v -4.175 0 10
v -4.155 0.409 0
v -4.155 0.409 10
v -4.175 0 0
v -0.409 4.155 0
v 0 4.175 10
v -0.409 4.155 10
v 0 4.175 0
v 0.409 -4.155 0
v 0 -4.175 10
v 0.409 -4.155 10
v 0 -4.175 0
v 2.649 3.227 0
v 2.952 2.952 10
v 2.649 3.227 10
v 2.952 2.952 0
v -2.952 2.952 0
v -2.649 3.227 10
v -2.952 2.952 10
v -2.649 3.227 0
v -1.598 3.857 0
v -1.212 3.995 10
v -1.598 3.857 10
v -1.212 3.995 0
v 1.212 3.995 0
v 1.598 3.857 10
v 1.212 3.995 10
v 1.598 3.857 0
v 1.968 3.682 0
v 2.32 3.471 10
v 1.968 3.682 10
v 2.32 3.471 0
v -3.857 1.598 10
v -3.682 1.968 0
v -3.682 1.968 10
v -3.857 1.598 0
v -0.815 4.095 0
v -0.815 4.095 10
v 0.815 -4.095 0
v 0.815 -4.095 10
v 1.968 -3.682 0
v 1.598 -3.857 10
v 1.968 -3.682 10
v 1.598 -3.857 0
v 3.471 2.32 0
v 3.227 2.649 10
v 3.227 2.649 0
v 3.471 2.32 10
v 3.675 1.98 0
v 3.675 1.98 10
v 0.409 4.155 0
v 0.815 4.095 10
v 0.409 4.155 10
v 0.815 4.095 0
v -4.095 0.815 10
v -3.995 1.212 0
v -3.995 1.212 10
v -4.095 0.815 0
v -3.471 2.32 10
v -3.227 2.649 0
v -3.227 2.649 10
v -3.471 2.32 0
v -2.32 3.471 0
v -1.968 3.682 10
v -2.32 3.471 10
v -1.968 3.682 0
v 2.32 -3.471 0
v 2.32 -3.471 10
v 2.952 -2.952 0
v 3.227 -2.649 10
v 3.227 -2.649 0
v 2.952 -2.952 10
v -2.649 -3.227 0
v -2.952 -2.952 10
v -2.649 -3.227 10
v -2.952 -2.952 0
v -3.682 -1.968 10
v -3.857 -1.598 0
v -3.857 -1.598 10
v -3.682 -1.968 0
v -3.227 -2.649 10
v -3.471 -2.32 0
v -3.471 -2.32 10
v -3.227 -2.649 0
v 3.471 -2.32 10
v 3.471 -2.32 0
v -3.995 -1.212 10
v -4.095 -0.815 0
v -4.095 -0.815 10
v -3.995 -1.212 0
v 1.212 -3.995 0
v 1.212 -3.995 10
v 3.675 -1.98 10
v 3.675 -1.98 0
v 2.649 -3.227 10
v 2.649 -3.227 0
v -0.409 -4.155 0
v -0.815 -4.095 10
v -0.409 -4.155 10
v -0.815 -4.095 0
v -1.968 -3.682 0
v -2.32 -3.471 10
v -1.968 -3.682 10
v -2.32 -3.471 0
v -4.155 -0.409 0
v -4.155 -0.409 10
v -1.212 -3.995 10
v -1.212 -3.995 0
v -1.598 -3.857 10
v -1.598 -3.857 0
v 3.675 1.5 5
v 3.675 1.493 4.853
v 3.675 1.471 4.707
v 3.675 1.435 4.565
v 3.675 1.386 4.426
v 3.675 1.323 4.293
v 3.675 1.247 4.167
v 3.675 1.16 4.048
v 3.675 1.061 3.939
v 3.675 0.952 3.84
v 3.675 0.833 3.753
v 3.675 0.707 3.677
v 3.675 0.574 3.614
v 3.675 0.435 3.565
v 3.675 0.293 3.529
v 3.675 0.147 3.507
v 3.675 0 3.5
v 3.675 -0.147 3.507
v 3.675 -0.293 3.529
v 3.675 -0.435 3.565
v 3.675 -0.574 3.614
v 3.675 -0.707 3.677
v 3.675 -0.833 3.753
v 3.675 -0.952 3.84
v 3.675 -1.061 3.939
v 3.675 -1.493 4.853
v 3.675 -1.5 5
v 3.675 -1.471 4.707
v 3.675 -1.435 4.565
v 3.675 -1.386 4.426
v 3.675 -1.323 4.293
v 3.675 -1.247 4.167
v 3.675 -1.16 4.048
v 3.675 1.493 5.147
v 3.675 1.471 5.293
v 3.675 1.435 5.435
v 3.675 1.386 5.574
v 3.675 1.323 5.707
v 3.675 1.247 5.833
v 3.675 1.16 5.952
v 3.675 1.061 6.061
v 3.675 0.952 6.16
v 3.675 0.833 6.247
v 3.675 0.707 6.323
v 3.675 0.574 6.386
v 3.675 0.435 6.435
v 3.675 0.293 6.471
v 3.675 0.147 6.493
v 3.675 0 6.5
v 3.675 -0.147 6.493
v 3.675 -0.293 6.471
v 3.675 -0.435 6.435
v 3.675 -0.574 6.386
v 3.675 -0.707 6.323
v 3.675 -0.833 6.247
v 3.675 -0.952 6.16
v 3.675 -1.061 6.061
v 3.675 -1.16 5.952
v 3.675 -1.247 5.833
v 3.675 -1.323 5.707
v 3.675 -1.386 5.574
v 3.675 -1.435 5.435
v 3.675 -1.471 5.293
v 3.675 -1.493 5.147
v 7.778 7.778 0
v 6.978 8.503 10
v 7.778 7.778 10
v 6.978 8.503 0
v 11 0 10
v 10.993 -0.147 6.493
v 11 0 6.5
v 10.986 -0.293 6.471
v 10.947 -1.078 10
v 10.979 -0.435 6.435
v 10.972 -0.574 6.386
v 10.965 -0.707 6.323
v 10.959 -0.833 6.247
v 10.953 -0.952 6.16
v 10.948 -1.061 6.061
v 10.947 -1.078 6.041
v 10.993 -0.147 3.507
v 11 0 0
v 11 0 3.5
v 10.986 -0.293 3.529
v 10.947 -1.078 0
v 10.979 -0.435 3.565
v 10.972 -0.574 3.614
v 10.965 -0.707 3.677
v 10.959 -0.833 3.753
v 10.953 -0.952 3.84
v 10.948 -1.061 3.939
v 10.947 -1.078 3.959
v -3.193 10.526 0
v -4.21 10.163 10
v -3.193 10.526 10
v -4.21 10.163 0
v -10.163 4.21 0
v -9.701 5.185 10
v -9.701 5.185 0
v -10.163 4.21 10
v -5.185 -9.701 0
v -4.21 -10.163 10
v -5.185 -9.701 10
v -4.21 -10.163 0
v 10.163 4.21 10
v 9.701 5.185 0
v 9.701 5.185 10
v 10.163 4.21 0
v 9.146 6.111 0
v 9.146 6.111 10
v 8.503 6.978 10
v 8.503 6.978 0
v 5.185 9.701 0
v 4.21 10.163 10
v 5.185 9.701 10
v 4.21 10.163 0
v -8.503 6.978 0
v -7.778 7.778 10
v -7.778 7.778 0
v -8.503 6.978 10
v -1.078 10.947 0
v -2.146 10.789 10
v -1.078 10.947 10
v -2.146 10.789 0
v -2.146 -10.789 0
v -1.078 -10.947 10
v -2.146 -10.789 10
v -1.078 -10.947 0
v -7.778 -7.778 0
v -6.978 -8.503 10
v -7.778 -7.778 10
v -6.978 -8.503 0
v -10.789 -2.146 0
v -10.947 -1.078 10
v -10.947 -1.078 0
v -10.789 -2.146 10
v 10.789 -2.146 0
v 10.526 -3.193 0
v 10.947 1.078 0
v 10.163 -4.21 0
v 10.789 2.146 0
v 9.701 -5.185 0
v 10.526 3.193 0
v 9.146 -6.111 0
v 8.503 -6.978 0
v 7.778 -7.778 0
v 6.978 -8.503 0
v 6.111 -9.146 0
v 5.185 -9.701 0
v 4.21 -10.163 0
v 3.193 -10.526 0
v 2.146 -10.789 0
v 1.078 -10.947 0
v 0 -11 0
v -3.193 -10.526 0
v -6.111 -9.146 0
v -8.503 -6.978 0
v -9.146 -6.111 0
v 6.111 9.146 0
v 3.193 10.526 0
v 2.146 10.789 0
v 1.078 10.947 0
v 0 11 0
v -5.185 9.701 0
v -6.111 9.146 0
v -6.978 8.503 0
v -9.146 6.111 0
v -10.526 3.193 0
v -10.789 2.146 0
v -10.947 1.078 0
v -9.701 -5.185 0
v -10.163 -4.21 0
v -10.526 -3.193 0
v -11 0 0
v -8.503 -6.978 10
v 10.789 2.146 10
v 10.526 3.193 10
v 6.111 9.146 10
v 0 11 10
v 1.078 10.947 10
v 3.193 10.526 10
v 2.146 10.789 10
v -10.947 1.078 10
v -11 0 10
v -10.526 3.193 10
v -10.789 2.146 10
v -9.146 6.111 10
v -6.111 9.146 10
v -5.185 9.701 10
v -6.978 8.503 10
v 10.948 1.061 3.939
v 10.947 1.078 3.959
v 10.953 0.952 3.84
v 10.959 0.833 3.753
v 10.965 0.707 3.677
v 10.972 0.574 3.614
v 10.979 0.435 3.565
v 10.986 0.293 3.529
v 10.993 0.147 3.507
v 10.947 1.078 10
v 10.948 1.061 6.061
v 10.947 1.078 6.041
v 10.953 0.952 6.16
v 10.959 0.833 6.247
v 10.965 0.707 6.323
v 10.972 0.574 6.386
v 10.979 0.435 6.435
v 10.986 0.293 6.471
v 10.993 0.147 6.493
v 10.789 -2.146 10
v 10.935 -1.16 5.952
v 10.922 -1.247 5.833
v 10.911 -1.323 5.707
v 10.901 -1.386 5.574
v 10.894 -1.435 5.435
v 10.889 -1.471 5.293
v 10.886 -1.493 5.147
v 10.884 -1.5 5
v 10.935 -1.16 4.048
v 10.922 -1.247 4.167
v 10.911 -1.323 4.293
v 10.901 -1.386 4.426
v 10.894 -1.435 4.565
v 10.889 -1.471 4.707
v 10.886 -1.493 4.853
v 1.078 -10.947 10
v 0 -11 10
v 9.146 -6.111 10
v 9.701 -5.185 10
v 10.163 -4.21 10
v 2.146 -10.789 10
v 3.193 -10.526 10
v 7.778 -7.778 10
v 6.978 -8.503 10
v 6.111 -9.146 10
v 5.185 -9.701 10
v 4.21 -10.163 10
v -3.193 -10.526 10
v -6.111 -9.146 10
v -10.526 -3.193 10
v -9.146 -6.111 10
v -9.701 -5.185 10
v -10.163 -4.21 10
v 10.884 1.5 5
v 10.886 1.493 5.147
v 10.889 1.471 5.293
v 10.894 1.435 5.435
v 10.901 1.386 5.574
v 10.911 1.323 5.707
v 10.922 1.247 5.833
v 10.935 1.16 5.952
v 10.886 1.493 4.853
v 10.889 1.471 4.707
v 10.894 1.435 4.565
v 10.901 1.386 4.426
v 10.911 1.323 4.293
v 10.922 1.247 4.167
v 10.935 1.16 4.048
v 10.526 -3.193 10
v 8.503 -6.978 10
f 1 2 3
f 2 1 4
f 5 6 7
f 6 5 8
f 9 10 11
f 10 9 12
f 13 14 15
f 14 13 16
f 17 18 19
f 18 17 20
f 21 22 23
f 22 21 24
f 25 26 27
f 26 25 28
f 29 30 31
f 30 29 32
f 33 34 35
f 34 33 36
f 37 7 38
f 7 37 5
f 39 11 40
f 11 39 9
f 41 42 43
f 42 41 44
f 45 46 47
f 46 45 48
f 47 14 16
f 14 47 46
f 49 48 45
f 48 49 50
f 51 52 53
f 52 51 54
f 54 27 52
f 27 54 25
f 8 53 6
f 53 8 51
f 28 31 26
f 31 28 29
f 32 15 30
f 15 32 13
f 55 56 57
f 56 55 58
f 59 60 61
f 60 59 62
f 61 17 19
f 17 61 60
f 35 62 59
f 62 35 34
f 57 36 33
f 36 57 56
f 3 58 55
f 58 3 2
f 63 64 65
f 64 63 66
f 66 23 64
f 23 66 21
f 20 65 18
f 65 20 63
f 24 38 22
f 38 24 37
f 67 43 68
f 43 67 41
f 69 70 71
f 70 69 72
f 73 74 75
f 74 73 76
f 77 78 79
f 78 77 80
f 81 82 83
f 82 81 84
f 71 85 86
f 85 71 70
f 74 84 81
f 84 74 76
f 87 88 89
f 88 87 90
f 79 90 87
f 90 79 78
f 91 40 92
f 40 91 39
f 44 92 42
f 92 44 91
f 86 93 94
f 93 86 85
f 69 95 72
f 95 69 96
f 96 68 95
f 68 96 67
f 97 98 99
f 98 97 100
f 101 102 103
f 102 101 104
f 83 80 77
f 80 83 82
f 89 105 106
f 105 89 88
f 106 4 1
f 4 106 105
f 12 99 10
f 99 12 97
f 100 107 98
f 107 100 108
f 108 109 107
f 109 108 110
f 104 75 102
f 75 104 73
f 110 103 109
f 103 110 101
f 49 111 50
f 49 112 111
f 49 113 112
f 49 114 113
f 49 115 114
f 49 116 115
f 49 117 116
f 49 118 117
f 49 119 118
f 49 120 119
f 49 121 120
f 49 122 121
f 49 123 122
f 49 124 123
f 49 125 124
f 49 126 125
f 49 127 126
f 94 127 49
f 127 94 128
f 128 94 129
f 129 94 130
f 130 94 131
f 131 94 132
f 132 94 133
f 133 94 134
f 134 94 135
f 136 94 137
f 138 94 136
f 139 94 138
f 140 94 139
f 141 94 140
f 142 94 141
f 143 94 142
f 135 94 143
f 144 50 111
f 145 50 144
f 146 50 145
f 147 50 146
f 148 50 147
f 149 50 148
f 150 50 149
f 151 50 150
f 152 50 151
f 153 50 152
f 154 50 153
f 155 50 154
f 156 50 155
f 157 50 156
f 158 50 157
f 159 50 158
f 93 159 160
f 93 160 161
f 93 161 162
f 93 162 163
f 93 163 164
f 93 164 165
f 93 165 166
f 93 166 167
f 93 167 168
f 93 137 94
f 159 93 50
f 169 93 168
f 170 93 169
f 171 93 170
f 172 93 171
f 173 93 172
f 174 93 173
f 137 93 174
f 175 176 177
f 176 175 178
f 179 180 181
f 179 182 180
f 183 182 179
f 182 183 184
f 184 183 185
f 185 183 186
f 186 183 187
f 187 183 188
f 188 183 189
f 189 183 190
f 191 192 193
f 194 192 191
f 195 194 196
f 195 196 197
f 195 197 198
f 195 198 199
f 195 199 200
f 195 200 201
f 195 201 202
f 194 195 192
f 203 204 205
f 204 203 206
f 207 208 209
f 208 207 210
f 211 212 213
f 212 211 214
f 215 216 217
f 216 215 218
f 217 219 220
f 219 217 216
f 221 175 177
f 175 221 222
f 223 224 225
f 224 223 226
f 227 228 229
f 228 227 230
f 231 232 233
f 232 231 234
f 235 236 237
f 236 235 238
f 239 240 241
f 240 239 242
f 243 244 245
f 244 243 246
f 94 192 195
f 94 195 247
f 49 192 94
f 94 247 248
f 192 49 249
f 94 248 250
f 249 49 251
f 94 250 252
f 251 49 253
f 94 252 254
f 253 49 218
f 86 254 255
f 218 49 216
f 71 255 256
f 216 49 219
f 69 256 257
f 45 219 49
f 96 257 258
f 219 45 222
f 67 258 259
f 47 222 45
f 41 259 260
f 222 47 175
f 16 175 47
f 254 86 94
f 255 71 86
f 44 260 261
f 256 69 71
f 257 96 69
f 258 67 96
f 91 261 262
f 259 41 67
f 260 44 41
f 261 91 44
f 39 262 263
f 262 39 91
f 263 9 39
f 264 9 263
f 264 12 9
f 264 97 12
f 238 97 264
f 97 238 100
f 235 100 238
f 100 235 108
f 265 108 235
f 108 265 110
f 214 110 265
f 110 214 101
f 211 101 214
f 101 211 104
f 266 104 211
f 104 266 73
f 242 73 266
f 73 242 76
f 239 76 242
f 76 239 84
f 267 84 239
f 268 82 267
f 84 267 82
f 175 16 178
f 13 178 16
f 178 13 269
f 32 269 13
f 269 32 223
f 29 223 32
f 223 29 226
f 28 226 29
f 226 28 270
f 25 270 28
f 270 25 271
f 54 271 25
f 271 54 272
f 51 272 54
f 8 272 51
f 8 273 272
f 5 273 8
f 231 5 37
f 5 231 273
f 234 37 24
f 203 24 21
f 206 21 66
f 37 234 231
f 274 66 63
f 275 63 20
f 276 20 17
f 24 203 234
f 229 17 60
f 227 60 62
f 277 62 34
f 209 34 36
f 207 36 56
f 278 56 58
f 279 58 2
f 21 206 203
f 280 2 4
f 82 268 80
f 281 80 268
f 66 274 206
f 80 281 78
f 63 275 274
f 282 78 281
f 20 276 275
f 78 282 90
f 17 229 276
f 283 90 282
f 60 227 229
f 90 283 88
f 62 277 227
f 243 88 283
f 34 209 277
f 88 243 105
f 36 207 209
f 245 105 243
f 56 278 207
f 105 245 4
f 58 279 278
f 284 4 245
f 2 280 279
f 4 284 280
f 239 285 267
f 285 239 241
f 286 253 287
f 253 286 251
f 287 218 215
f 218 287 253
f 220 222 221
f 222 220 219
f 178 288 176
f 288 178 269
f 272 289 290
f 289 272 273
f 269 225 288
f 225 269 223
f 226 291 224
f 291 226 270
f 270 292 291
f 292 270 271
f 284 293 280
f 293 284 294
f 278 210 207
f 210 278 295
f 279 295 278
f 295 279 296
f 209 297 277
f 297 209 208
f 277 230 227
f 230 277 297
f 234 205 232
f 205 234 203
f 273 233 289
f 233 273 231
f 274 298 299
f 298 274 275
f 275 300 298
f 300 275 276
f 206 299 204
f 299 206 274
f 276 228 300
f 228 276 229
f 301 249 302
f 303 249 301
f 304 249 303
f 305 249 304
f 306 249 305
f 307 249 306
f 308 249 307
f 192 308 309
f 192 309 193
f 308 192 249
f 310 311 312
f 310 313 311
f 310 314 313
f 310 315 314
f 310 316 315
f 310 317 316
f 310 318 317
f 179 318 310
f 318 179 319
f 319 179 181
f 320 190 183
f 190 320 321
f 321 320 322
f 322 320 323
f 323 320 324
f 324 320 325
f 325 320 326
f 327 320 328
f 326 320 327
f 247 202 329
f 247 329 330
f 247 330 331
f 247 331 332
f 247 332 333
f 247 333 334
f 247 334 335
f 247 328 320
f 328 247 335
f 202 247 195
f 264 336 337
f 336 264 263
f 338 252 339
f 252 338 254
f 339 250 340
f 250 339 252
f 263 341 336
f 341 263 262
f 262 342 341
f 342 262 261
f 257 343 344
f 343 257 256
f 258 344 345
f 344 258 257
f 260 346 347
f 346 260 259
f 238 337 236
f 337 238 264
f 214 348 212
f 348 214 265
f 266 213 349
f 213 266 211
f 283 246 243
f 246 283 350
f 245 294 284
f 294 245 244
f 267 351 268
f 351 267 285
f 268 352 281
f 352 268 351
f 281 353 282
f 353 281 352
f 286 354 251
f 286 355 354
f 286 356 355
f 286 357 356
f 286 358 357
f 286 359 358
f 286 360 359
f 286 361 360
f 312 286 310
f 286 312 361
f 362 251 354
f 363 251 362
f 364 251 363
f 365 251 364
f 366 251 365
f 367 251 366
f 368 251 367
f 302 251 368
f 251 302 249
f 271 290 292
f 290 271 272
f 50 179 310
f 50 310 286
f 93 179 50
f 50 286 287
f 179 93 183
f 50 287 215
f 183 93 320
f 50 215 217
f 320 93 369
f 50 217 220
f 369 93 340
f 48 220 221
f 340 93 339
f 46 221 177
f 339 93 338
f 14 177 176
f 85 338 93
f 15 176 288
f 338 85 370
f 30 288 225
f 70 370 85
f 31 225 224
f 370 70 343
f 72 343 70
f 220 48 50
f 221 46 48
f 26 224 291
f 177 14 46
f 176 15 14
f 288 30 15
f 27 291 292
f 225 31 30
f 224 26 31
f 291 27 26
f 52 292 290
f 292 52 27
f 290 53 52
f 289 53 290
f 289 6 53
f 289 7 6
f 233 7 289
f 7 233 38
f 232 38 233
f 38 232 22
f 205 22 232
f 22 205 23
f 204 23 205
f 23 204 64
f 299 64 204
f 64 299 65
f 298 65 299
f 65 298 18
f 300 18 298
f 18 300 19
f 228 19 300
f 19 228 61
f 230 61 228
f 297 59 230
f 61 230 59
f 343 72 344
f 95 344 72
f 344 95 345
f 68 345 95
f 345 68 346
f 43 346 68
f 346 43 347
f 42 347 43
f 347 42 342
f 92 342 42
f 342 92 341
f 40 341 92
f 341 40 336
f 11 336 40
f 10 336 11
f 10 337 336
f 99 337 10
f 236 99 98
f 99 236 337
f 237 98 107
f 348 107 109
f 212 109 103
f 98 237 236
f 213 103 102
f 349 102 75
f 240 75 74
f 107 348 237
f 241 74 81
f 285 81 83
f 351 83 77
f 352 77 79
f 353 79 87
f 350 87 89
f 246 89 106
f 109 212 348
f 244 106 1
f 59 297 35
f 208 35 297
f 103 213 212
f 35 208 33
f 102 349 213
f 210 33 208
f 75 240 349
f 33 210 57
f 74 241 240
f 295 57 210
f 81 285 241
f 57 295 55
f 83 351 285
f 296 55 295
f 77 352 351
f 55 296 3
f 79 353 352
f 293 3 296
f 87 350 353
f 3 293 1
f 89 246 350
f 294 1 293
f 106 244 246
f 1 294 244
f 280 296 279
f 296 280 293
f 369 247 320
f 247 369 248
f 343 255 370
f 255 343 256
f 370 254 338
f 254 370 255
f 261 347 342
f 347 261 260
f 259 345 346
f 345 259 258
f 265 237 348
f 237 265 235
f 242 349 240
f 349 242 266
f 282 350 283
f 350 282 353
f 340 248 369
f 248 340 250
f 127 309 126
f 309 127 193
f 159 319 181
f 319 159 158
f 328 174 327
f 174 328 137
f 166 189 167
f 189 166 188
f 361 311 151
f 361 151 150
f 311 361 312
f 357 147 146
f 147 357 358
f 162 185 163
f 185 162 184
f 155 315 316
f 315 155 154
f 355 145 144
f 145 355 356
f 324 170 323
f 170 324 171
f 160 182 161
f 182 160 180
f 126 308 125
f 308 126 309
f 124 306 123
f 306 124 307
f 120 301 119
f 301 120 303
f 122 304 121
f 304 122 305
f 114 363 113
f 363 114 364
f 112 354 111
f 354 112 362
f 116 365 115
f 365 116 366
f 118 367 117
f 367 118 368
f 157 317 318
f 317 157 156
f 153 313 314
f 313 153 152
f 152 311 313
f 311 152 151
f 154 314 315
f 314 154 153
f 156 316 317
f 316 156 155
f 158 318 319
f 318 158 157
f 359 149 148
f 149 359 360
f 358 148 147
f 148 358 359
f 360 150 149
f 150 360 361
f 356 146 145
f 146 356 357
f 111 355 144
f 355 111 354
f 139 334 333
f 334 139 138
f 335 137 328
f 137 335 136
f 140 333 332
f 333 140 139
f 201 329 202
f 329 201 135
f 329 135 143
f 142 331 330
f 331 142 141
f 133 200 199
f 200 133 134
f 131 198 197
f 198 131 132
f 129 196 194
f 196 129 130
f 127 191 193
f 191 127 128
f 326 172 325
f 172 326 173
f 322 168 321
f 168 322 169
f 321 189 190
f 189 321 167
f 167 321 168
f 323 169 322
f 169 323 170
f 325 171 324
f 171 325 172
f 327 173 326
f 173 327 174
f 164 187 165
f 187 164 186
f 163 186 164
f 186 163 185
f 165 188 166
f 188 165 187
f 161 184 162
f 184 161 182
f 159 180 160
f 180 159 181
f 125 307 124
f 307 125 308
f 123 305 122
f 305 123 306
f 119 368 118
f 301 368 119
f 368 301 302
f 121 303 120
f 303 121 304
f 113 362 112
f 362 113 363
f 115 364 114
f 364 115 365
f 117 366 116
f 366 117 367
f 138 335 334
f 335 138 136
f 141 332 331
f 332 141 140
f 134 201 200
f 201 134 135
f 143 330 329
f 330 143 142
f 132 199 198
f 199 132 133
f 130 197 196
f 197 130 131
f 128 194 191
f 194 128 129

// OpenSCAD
// file: parameters.scad
// =============================================================================
// Gen-BN — nightly 2026-10-06 (physics_scorer, honest magpylib watts)
// 8-pole / 9-coil (winding factor 0.945, smoother torque and lower cogging than 6-coil) on the Gen-BK R52 rotors/steel, re-wound dense at fill 0.65 with 9.45 mm copper on 35–70 mm bobbins — more turns per metre than Gen-BK at the same ~360 m wire.
// Clocking 0 deg (magnets N facing S) + D-flat keyed bore + index notch + flip-symmetric hole map.
// Windable 2-piece bobbin; turns = physics_scorer turns_fit; copper only between flanges.
// Steel back-iron: 2× Ø138 × 4.76 mm (3/16") mild-steel discs (steel_backiron_disc.dxf); magnets sit ON the steel
// (through-pockets) -> score with --back-iron.
// =============================================================================
topology            = "dual_rotor";

// --- Wire / winding (physics_scorer winding-fit) -------------------------------
wire_awg            = 26;
wire_od             = 0.45;     // insulated OD mm (bare 0.405)
fill_realistic      = 0.65;     // insulated-wire area / window (DENSE layered wind with a jig; scorer cap 0.65)
turns               = 486;       // = physics_scorer turns_fit (do NOT raise)
coil_former_type    = "bobbin";
coil_core_inset     = 12.60;     // radial copper build: hub = copper boundary inset by this
wind_build_axial    = 0.0;      // nothing proud of the flanges
wind_build_radial   = 0.0;

// --- Bobbin (base + lid) ---------------------------------------------------------
coil_id_r           = 35.00;    // copper boundary sector
coil_od_r           = 70.00;
span_deg            = 33.94;    // = pitch - 2*asin((wall+0.85)/coil_id_r) -> >=1.2 mm stator web
former_web          = 9.45;     // copper height between flanges (TALL copper: steel keeps Bz up)
flange_t            = 0.80;     // >= 0.8 mm FDM wall rule (tall winds push on the flanges)
wall                = 1.00;     // flange lip beyond copper
former_bare_h       = former_web + 2 * flange_t;
coil_envelope_h     = former_bare_h + 2 * wind_build_axial;
tab_w               = 7.0;
tab_len             = 7.0;
tab_h               = former_bare_h / 2;
pin_d               = 1.9;      // 1.75 mm filament locating pin
coil_mount_r        = coil_od_r + 0.2 + 4.0;
lead_y              = 1.6;
lead_slot_w         = 0.9;
lead_groove_d       = 0.6;

// --- Gap -------------------------------------------------------------------------
run_clear           = 0.50;     // rotor face -> flange
gap_spacer_h        = run_clear + wind_build_axial;
m2m                 = coil_envelope_h + 2 * run_clear;   // rotor face to rotor face (= gap_sleeve length)

// --- Stator ----------------------------------------------------------------------
coil_stations       = 9;
bay_clear           = 0.25;
stator_thick        = former_bare_h;                        // bobbins flush both faces
stator_od           = 160.0;
shaft_clear_stator  = 14.0;     // stator is static; gap sleeve OD 12 spins inside

// --- Rotor(s) --------------------------------------------------------------------
magnet_Br           = 1.43;     // N52
magnet_d_large      = 20.0;
magnet_h_large      = 5.0;      // one O20x5 per pocket
magnet_h_small      = 5.0;      // one O5x5 per pocket
halbach_magnetisation = "diametric"; // O5x5 assist magnets MUST be DIAMETRICALLY magnetised (tangential)
rotor_b_same_axis   = true;     // same-index magnets share one axis: N faces S across the gap
large_pocket_d      = 20.3;
small_pocket_d      = 5.3;
pocket_h            = 5.10;     // THROUGH the carrier: magnet back face sits on the steel disc
large_n             = 8;
R_large             = 52.0;
R_small_inner       = 41.0;
R_small_mid         = 52.0;
R_small_outer       = 63.0;
small_r_list        = [R_small_inner, R_small_mid, R_small_outer];   // O5 pockets between poles
carrier_od          = 138.0;
carrier_thick       = pocket_h;
hub_h               = 12.0;     // > steel_t + insert: radial set-screw clears the steel
hub_od              = 24.0;     // slim hub so the M4 brace rods fit at R~18 inside the coil ring
hub_insert_d        = 4.0;      // M3 heat-set insert, radial, bears on the D-flat
rotor_b_offset_deg  = 0.0;      // CLOCKING: magnets directly opposite
shaft_key           = "dflat";
dflat_depth         = 0.5;      // 8 mm shaft with 0.5 mm flat (7.5 across flat)
index_notch_d       = 3.0;

// --- Steel back-iron (buyable laser-cut) -------------------------------------------
steel_t             = 4.76;      // mild steel thickness (image method ignores it; sized from steel_flux.py so the return path stays well below saturation)
steel_center_hole   = 26.0;     // slips over the rotor hub (OD 24)
steel_od            = carrier_od;   // steel disc OD = rotor carrier OD

// --- Modular MAX interface ----------------------------------------------------------
shaft_bore          = 8.35;
dflat_x             = 4.0 - dflat_depth + (shaft_bore - 8.0) / 2;
bearing_d           = 21.85;
bearing_h           = 7.2;
m3_clear            = 3.5;
bolt_r_inner        = 30.0;     // M3 steel-disc clamp bolts (inside the magnet ring)
bolt_n_inner        = 4;
bolt_inner_angles   = [0, 90, 180, 270];
bolt_r_outer        = 65.0;     // M3 steel-disc clamp bolts (outside the magnet ring)
bolt_outer_angles   = [45, 135, 225, 315];
flange_bolt_r       = 75.0;     // frame rods: OUTSIDE the rotor OD (rotors spin inside them)
flange_bolt_n       = 9;
flange_bolt_offset  = 20.00;    // between coil stations -> never cuts a lead groove/tab
brace_r             = 18.0;
brace_d             = 4.3;      // temporary M4 jack rods (assembly only)
brace_n             = 4;
brace_angles        = [45, 135, 225, 315];          // flip-symmetric

spacer_pad_od       = 14.0;
spacer_pad_id       = m3_clear;
endbell_od          = 160.0;
endbell_thick       = 8.0;
endbell_shaft_clear = 10.0;
collar_h            = 10.0;
standoff_od         = 9.0;
frame_standoff_h    = run_clear + carrier_thick + hub_h + collar_h + 2.0;
sleeve_od           = 12.0;
plate_max_mm        = 410;

$fn = 64;
// main file
// Gen-BN — shaft collar with D-flat bore (set screw bears on the flat); print x4
include <parameters.scad>;
$fn = 64;
// D-flat keyed bore: flat faces +X (angle 0 = magnet pocket 0 = index notch)
module dflat_bore(h) {
    intersection() {
        cylinder(d=shaft_bore, h=h);
        translate([-shaft_bore, -shaft_bore, 0]) cube([shaft_bore + dflat_x, 2*shaft_bore, h]);
    }
}

od = 22; h = collar_h; set_d = 3.0;
difference() {
    cylinder(d=od, h=h);
    translate([0, 0, -0.1]) dflat_bore(h + 0.2);
    translate([0, 0, h/2]) rotate([0, 90, 0]) cylinder(d=set_d, h=od);
}
